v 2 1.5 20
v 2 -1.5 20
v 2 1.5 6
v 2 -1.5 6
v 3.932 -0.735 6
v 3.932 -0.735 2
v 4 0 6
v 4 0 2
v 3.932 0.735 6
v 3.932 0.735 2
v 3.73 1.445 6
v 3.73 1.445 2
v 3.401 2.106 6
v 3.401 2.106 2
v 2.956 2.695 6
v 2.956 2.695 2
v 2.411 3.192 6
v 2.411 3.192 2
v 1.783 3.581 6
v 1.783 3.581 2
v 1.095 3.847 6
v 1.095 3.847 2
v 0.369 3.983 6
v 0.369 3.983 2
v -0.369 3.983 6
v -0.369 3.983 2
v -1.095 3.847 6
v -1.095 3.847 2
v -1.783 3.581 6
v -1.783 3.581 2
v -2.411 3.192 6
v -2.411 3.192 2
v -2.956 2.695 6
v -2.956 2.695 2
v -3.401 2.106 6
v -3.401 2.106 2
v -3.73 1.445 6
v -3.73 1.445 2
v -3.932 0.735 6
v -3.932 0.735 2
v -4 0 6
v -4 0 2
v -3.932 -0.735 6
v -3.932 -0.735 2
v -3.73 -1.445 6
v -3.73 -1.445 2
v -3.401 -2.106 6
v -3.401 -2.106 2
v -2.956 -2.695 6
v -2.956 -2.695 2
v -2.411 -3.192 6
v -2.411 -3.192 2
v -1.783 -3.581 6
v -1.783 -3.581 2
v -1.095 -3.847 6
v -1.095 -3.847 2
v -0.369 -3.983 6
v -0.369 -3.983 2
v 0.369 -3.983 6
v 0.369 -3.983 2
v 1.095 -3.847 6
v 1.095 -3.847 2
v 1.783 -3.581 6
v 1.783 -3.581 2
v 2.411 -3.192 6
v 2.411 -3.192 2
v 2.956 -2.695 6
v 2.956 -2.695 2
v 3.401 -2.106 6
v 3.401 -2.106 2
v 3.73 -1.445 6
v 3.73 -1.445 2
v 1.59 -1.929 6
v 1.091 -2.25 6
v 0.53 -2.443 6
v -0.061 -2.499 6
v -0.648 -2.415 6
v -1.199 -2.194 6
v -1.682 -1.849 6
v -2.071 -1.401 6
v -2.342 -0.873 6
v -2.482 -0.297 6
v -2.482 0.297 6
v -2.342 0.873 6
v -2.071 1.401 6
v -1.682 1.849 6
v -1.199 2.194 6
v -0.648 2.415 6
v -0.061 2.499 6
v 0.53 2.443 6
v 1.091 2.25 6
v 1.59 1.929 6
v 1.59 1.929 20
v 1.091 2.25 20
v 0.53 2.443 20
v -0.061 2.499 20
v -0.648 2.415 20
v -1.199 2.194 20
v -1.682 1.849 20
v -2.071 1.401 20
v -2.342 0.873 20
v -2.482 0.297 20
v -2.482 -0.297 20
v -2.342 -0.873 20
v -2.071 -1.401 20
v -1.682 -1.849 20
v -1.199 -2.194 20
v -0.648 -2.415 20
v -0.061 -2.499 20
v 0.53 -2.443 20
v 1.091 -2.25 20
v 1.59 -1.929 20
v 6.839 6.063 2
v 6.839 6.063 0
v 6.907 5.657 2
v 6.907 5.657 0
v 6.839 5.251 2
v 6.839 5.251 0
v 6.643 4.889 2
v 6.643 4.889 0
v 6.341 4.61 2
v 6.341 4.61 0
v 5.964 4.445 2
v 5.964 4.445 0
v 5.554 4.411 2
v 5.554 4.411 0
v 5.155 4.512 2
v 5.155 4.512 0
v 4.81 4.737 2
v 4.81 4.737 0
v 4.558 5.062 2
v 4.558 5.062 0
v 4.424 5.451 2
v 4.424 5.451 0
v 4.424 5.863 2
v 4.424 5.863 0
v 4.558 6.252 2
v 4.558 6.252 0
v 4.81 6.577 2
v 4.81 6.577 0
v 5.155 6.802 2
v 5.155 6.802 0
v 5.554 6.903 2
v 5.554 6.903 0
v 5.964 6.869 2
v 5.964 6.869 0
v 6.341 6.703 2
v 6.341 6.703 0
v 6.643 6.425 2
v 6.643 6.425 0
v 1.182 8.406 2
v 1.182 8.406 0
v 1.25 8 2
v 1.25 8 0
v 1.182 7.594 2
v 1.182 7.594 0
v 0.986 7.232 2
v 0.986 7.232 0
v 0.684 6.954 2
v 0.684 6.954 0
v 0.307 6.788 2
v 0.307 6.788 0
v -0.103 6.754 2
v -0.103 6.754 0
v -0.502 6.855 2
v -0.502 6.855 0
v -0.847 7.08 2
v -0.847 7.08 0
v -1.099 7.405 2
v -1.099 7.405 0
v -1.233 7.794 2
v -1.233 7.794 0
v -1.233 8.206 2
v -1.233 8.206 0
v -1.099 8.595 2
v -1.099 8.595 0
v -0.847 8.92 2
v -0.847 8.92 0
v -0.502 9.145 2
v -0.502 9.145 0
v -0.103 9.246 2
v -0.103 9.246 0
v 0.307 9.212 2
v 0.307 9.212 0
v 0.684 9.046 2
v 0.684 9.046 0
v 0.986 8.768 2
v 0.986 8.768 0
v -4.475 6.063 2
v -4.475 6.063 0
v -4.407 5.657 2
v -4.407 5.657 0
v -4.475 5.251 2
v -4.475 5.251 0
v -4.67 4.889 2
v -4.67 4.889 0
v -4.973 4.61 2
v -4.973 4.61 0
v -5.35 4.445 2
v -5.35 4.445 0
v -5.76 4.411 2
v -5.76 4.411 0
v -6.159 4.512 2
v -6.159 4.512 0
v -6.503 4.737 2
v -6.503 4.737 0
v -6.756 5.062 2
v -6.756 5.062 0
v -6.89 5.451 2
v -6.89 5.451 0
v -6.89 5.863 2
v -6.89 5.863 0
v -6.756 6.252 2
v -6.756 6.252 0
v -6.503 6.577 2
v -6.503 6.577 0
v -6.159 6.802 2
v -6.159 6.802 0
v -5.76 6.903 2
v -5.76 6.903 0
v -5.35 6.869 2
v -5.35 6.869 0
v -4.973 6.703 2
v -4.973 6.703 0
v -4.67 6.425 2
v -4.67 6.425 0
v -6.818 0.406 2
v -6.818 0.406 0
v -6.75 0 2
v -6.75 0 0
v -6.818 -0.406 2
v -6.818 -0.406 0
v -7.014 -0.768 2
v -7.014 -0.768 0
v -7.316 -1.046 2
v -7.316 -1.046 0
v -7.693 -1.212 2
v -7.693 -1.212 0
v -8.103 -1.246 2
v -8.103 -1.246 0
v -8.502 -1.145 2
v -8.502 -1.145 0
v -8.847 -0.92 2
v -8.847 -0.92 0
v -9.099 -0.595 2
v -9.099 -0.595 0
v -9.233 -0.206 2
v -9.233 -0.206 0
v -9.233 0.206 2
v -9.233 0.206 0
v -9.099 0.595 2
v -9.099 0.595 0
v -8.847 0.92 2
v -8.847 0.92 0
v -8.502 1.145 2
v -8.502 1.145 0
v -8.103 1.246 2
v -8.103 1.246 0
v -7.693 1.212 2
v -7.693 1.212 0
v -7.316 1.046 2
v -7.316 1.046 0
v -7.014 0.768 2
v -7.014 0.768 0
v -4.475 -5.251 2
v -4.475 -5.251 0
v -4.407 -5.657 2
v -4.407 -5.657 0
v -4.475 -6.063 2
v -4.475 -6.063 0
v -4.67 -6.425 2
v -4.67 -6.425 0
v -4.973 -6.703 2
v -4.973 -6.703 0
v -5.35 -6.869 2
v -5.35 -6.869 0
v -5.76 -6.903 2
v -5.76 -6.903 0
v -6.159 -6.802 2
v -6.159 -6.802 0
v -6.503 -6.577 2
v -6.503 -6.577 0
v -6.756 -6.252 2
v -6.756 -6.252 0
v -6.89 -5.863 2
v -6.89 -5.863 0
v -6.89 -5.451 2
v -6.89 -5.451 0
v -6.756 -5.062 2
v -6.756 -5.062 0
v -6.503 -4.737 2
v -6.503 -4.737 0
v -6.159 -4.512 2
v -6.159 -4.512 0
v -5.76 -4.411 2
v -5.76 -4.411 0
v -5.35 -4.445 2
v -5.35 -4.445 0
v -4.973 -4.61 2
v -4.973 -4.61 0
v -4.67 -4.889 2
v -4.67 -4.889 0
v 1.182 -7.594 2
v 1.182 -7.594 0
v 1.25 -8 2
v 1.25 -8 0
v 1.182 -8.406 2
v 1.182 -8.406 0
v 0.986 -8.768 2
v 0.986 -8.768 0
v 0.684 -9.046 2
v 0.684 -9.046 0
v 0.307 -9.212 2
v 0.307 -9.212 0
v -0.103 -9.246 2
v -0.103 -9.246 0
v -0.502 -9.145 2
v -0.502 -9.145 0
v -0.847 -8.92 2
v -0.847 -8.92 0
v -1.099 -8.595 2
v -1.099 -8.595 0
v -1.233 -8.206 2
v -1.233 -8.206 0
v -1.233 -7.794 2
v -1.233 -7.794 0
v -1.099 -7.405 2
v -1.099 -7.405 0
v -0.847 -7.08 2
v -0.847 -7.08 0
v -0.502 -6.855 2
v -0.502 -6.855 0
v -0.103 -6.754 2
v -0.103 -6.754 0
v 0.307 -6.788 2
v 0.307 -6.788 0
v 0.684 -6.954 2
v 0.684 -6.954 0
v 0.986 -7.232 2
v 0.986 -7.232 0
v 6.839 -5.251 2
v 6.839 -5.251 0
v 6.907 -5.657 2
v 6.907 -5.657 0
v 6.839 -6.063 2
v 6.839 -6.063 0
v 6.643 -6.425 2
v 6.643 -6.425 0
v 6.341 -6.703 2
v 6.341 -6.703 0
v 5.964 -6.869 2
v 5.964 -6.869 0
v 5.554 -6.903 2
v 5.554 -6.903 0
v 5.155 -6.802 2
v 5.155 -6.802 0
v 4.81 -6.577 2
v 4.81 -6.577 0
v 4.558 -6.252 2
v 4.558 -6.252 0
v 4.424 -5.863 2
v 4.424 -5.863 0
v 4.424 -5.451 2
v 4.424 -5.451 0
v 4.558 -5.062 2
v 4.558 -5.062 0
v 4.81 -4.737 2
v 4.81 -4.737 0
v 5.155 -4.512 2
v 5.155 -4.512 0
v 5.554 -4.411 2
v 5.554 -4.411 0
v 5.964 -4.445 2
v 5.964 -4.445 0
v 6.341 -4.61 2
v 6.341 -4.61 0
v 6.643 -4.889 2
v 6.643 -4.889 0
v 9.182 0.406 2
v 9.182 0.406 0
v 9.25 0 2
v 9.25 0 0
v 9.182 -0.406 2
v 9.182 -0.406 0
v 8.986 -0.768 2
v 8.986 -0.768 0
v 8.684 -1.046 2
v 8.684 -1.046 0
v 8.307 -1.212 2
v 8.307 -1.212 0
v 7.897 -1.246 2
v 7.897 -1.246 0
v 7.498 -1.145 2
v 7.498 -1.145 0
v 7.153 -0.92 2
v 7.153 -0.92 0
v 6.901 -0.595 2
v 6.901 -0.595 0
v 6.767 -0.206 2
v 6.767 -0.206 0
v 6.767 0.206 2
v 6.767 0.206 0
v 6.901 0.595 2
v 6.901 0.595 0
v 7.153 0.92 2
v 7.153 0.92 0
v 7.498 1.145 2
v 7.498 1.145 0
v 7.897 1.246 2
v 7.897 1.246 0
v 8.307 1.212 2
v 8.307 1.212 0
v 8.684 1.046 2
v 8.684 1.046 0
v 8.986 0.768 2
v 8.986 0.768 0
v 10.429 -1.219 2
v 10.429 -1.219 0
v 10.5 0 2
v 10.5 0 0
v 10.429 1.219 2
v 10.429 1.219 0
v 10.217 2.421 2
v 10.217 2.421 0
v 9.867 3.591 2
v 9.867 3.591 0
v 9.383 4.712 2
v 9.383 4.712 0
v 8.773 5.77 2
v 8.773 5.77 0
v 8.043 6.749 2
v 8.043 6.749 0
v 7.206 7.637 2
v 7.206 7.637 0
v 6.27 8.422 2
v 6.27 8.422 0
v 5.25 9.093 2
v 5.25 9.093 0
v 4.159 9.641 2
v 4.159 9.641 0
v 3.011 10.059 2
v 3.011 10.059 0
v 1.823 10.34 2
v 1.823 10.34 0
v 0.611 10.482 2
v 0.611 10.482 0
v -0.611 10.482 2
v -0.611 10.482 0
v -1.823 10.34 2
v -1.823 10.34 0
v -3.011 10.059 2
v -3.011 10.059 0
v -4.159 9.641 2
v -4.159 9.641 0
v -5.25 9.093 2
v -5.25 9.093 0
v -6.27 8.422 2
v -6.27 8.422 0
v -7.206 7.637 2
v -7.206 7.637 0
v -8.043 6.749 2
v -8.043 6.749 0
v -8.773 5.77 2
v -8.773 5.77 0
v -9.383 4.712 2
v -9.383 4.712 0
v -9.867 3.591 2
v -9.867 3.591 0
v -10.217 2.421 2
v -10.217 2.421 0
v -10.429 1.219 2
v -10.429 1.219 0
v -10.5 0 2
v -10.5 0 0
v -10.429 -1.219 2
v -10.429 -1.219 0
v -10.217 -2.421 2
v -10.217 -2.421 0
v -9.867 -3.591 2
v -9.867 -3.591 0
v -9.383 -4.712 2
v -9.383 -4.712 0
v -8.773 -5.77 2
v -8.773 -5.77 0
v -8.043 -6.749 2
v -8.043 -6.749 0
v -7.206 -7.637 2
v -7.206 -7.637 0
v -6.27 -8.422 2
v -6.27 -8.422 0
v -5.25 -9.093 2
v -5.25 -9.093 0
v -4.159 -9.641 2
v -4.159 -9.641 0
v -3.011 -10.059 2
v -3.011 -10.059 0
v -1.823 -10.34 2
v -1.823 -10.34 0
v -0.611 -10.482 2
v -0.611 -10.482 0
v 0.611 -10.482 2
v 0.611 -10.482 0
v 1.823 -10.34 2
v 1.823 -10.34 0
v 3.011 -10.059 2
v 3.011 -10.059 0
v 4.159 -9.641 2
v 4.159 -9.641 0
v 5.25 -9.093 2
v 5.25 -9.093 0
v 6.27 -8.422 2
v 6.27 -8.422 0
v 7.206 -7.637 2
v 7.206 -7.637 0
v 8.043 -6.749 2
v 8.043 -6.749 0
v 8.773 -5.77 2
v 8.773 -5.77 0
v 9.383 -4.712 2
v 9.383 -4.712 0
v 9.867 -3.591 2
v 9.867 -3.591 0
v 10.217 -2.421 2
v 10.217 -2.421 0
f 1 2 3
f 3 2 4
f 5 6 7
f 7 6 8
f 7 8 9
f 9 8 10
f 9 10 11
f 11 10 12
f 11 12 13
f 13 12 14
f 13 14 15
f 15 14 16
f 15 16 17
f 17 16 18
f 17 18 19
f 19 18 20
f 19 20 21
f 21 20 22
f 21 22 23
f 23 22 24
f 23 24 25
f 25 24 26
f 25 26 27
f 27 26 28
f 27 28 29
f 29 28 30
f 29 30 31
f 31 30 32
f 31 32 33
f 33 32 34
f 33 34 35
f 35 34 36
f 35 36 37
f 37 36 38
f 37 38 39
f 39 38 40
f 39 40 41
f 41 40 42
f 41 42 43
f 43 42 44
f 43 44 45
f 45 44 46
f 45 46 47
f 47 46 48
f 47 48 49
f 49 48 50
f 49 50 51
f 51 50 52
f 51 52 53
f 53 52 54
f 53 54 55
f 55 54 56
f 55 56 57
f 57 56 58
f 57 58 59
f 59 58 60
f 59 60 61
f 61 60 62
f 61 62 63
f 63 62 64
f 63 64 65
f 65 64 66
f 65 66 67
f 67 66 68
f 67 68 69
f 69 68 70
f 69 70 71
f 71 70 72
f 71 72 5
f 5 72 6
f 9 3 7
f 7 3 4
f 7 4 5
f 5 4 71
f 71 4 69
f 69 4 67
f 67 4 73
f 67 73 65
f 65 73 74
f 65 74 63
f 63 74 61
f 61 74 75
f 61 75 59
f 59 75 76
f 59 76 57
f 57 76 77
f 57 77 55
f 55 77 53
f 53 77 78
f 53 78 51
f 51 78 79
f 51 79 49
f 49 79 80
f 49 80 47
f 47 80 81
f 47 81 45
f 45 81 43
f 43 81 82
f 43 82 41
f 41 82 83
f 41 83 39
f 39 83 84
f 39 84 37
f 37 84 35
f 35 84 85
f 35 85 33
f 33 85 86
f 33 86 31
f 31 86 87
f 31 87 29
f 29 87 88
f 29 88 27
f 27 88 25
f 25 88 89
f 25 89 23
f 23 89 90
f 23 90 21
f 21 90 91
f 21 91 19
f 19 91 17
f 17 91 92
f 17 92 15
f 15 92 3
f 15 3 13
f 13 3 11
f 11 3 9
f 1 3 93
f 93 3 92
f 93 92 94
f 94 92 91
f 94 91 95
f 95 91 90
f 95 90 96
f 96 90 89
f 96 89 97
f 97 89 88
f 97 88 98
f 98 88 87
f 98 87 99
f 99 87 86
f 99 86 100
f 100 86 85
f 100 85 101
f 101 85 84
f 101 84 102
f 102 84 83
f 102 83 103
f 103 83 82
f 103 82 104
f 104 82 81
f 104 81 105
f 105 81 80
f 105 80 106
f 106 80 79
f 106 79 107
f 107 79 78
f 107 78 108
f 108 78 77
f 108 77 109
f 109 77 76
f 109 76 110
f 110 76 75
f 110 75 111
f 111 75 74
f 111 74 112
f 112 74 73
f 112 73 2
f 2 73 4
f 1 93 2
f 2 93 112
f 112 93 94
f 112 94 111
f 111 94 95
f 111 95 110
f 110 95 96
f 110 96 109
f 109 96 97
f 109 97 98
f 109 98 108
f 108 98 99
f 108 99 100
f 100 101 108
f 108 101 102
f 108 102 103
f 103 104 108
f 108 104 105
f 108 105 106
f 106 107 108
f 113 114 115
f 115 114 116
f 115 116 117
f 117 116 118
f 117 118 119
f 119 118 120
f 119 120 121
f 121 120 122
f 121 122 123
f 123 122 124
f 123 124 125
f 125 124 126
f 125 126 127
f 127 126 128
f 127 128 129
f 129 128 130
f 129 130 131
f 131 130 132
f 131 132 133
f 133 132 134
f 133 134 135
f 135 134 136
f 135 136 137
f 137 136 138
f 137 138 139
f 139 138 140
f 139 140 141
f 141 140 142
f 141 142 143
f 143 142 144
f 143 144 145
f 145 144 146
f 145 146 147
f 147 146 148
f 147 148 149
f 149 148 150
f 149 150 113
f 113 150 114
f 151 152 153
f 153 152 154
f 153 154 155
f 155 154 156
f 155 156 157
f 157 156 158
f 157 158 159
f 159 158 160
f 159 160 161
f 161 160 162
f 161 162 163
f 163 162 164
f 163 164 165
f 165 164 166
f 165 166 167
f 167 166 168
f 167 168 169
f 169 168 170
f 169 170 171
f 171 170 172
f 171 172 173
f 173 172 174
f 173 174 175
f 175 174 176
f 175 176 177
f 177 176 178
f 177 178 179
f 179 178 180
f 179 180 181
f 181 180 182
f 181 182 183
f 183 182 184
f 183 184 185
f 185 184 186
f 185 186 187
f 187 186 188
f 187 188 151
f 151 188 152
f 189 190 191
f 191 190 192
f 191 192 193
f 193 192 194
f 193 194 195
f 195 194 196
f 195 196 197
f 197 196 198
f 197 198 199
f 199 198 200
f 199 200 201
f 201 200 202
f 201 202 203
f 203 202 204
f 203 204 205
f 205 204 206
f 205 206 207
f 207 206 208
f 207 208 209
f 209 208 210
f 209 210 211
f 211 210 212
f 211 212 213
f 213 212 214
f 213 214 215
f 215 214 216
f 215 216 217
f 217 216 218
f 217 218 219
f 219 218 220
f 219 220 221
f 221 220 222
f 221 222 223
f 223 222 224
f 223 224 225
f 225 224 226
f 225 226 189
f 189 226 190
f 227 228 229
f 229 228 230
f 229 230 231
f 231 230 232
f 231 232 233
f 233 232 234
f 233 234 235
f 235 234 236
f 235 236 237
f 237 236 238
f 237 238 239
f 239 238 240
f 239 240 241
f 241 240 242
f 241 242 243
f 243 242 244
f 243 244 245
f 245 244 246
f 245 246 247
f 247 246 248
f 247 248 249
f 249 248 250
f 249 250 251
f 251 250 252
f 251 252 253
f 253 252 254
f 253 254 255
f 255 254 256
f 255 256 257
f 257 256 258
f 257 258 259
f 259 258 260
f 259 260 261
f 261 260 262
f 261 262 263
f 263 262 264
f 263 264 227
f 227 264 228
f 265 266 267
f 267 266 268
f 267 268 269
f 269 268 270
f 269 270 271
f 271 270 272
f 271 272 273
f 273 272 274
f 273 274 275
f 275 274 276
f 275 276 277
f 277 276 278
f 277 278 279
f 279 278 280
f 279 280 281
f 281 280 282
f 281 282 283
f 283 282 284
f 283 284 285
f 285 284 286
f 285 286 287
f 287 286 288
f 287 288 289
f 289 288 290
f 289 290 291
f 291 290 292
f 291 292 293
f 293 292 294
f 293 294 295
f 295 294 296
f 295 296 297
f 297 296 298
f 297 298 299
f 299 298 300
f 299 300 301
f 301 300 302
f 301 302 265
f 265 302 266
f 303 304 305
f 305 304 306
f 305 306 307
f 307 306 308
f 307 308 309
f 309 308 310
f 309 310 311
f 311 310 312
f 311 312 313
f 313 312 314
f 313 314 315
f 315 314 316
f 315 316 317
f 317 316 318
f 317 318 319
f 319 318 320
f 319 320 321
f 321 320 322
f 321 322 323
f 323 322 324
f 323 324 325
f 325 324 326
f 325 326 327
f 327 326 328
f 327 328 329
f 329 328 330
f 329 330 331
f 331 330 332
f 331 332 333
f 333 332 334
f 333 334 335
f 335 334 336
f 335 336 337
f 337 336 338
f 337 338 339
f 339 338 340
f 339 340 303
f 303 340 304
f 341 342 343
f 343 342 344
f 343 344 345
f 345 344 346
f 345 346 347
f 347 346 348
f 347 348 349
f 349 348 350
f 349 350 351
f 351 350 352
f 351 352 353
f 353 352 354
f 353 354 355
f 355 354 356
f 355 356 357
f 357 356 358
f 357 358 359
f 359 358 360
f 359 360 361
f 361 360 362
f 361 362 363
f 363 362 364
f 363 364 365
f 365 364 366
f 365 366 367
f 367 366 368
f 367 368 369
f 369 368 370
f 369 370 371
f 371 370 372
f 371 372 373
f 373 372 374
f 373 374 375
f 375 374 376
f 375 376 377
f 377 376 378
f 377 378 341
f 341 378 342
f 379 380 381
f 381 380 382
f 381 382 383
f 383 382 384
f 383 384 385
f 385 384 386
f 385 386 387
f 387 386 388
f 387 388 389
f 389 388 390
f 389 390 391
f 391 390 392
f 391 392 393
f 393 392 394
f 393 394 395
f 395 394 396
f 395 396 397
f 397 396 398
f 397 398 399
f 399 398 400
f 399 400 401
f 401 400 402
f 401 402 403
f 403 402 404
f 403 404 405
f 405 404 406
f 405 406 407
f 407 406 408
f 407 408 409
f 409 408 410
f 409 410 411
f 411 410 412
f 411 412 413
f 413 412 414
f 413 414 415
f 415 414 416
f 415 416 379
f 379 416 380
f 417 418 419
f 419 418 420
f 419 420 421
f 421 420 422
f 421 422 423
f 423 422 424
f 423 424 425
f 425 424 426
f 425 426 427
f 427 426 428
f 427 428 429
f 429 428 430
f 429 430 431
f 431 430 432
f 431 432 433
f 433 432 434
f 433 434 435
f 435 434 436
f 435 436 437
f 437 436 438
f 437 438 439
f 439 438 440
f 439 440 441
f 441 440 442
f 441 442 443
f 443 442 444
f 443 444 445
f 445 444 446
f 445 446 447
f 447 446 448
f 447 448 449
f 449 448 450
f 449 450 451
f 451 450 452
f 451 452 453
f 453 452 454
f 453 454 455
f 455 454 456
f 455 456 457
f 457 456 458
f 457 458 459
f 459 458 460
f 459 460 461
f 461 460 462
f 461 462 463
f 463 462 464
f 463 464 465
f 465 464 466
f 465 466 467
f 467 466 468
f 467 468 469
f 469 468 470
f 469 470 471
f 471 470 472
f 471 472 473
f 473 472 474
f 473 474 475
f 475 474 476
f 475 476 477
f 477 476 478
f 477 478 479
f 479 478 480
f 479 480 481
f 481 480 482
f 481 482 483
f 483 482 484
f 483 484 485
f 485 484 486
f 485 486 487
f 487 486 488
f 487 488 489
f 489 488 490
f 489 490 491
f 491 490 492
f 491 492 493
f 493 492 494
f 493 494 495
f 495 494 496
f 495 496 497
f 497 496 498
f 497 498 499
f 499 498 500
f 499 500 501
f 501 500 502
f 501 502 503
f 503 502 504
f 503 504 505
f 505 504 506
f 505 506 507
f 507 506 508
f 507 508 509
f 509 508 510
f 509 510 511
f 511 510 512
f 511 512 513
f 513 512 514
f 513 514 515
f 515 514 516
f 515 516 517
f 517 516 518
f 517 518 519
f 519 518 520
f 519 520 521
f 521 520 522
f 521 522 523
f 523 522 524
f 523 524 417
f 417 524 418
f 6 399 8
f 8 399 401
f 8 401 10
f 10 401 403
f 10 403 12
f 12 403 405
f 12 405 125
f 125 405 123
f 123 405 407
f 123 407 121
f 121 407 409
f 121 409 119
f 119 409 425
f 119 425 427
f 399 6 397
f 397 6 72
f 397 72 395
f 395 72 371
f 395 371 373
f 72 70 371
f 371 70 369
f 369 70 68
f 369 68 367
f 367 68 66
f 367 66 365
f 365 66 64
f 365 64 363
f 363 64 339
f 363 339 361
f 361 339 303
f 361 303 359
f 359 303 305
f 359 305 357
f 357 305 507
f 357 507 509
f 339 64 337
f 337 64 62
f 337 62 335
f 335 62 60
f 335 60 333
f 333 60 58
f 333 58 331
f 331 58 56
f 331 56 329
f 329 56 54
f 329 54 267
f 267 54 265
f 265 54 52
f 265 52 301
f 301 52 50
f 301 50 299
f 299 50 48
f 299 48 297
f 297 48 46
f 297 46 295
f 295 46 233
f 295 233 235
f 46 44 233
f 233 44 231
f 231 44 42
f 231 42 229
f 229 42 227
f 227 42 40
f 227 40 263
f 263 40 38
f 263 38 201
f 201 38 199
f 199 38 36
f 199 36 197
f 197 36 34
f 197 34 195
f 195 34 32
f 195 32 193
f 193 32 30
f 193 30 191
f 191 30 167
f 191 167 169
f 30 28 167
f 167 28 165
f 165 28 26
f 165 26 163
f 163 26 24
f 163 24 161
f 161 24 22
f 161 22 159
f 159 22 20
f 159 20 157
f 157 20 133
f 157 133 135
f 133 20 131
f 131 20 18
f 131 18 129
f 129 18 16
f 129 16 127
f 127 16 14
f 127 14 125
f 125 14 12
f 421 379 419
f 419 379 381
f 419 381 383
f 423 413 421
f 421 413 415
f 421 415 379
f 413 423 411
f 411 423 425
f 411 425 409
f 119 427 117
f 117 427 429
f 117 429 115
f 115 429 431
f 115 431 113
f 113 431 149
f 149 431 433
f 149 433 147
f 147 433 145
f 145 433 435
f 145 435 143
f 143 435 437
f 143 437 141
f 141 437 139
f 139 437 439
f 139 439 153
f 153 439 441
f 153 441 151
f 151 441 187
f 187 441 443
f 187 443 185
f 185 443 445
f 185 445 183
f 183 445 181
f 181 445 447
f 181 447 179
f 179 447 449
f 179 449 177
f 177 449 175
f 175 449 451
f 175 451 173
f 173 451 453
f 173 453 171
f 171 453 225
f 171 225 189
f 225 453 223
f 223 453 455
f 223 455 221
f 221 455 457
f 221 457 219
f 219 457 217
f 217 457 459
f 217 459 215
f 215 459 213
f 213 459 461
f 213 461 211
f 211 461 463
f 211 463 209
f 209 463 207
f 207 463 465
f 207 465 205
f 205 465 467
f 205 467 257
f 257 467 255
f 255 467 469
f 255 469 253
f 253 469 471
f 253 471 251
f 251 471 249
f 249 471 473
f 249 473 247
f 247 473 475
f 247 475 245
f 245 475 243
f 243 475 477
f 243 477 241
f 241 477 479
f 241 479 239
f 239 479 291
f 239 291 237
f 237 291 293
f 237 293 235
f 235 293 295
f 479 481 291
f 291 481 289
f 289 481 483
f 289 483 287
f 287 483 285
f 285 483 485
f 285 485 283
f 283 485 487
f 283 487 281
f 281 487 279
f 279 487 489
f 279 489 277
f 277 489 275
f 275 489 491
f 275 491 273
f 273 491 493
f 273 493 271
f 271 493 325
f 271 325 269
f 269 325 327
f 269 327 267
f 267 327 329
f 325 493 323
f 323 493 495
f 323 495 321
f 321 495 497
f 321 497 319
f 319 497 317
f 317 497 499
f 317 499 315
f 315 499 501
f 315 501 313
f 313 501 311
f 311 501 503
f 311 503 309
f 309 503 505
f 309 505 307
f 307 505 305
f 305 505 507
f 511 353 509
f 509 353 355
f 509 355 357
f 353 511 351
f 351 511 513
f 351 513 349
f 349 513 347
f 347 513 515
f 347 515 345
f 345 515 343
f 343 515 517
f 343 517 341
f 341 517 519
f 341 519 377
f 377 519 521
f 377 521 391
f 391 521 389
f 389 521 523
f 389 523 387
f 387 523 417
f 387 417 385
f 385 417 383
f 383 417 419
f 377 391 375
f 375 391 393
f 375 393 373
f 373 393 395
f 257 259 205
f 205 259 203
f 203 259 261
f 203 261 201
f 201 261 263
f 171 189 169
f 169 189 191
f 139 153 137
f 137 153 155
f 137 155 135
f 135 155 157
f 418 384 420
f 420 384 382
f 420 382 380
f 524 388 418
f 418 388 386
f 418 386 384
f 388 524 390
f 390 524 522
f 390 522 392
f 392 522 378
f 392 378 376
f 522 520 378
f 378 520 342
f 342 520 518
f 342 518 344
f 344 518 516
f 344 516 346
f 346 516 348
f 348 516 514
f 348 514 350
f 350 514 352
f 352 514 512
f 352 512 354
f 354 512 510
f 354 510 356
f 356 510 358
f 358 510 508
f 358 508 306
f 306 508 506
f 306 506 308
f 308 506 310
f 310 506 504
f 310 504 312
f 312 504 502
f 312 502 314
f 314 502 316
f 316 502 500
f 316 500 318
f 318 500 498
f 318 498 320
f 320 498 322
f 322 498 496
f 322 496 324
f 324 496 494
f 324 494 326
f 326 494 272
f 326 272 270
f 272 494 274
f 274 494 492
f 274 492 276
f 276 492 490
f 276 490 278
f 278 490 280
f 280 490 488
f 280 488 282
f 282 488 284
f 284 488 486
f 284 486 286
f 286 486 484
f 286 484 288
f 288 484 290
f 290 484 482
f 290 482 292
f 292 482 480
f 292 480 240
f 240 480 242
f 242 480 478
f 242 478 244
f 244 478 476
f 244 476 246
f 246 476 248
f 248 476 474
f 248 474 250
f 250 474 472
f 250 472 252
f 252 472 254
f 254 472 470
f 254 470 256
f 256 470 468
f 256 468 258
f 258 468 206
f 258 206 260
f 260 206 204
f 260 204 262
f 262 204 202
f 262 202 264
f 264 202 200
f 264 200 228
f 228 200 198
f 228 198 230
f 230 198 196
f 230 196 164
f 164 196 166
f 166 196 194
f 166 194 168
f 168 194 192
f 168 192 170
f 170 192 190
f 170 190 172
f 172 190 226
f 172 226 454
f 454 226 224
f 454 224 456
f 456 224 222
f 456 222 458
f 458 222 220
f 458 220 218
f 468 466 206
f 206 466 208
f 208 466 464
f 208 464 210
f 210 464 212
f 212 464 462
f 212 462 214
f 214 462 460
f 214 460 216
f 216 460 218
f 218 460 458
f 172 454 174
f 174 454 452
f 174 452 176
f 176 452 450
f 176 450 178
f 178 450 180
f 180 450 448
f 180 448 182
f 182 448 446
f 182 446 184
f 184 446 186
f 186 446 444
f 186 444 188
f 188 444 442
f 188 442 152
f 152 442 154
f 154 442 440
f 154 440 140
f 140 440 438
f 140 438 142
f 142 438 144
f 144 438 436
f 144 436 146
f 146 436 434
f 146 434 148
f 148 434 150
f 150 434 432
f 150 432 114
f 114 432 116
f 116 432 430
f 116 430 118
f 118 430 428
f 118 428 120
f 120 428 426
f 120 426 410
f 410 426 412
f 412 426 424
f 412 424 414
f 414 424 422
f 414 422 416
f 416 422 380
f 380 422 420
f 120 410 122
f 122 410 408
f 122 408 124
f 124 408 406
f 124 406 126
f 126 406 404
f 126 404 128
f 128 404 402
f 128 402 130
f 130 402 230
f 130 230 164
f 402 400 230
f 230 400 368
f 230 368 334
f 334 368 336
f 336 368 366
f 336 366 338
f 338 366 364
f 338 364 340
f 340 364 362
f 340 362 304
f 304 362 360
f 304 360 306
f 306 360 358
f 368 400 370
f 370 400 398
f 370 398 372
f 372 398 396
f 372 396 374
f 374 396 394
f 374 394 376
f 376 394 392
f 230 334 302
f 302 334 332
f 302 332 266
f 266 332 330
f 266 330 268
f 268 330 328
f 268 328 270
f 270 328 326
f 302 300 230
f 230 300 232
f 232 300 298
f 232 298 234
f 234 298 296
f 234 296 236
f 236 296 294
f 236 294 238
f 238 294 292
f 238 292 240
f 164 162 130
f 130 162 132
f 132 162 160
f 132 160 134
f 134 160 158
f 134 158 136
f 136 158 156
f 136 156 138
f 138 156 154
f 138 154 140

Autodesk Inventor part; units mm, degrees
ref_plane "YZ Plane" through (0, 0, 0) normal (1, 0, 0) x (0, 1, 0)
ref_plane "XZ Plane" through (0, 0, 0) normal (0, 1, 0) x (-1, 0, 0)
ref_plane "XY Plane" through (0, 0, 0) normal (0, 0, 1) x (1, 0, 0)
sketch "Sketch1" plane through (0, 0, 0) normal (0, 0, 1) x (1, 0, 0)
  circle A0 centre (0, 0) radius 10.5
  line L0 (0, 0) -> (8, 0)
  circle A1 centre (8, 0) radius 1.25
  circle A2 centre (5.6569, 5.6569) radius 1.25
  circle A3 centre (0, 8) radius 1.25
  circle A4 centre (-5.6569, 5.6569) radius 1.25
  circle A5 centre (-8, 0) radius 1.25
  circle A6 centre (-5.6569, -5.6569) radius 1.25
  circle A7 centre (0, -8) radius 1.25
  circle A8 centre (5.6569, -5.6569) radius 1.25
  dimension "d0" = 21
  dimension "d1" = 8
  dimension "d2" = 2.5
  dimension "d5" = 360
extrude "Extrusion1" add sketch "Sketch1" along normal blind 2
sketch "Sketch2" plane through (0, 0, 2) normal (0, 0, 1) x (1, 0, 0)
  circle A0 centre (0, 0) radius 2.5
  dimension "d9" = 5
extrude "Extrusion3" add sketch "Sketch2" along normal blind 18
sketch "Sketch3" plane through (0, 0, 2) normal (0, 0, 1) x (1, 0, 0)
  circle A0 centre (0, 0) radius 2.5 projected
  circle A1 centre (0, 0) radius 4
  dimension "d14" = 8
extrude "Extrusion4" add sketch "Sketch3" along normal blind 4
sketch "Sketch4" plane through (0, 0, 20) normal (0, 0, 1) x (1, 0, 0)
  line L0 (0, 0) -> (2, 0)
  line L1 (0, 0) -> (2, 0) construction
  line L2 (2, 0) -> (2, 1.5)
  circle A0 centre (0, 0) radius 2.5 projected
  line L3 (2, 0) -> (2, -1.5)
  circle A1 centre (0, 0) radius 2.5
  dimension "d17" = 2
  dimension "d18" = 0
extrude "Extrusion5" cut sketch "Sketch4" against normal blind 14 contours L2 A0 L3 picked at (2.0912, -0.8466)
properties part number "Drive_shaft"
